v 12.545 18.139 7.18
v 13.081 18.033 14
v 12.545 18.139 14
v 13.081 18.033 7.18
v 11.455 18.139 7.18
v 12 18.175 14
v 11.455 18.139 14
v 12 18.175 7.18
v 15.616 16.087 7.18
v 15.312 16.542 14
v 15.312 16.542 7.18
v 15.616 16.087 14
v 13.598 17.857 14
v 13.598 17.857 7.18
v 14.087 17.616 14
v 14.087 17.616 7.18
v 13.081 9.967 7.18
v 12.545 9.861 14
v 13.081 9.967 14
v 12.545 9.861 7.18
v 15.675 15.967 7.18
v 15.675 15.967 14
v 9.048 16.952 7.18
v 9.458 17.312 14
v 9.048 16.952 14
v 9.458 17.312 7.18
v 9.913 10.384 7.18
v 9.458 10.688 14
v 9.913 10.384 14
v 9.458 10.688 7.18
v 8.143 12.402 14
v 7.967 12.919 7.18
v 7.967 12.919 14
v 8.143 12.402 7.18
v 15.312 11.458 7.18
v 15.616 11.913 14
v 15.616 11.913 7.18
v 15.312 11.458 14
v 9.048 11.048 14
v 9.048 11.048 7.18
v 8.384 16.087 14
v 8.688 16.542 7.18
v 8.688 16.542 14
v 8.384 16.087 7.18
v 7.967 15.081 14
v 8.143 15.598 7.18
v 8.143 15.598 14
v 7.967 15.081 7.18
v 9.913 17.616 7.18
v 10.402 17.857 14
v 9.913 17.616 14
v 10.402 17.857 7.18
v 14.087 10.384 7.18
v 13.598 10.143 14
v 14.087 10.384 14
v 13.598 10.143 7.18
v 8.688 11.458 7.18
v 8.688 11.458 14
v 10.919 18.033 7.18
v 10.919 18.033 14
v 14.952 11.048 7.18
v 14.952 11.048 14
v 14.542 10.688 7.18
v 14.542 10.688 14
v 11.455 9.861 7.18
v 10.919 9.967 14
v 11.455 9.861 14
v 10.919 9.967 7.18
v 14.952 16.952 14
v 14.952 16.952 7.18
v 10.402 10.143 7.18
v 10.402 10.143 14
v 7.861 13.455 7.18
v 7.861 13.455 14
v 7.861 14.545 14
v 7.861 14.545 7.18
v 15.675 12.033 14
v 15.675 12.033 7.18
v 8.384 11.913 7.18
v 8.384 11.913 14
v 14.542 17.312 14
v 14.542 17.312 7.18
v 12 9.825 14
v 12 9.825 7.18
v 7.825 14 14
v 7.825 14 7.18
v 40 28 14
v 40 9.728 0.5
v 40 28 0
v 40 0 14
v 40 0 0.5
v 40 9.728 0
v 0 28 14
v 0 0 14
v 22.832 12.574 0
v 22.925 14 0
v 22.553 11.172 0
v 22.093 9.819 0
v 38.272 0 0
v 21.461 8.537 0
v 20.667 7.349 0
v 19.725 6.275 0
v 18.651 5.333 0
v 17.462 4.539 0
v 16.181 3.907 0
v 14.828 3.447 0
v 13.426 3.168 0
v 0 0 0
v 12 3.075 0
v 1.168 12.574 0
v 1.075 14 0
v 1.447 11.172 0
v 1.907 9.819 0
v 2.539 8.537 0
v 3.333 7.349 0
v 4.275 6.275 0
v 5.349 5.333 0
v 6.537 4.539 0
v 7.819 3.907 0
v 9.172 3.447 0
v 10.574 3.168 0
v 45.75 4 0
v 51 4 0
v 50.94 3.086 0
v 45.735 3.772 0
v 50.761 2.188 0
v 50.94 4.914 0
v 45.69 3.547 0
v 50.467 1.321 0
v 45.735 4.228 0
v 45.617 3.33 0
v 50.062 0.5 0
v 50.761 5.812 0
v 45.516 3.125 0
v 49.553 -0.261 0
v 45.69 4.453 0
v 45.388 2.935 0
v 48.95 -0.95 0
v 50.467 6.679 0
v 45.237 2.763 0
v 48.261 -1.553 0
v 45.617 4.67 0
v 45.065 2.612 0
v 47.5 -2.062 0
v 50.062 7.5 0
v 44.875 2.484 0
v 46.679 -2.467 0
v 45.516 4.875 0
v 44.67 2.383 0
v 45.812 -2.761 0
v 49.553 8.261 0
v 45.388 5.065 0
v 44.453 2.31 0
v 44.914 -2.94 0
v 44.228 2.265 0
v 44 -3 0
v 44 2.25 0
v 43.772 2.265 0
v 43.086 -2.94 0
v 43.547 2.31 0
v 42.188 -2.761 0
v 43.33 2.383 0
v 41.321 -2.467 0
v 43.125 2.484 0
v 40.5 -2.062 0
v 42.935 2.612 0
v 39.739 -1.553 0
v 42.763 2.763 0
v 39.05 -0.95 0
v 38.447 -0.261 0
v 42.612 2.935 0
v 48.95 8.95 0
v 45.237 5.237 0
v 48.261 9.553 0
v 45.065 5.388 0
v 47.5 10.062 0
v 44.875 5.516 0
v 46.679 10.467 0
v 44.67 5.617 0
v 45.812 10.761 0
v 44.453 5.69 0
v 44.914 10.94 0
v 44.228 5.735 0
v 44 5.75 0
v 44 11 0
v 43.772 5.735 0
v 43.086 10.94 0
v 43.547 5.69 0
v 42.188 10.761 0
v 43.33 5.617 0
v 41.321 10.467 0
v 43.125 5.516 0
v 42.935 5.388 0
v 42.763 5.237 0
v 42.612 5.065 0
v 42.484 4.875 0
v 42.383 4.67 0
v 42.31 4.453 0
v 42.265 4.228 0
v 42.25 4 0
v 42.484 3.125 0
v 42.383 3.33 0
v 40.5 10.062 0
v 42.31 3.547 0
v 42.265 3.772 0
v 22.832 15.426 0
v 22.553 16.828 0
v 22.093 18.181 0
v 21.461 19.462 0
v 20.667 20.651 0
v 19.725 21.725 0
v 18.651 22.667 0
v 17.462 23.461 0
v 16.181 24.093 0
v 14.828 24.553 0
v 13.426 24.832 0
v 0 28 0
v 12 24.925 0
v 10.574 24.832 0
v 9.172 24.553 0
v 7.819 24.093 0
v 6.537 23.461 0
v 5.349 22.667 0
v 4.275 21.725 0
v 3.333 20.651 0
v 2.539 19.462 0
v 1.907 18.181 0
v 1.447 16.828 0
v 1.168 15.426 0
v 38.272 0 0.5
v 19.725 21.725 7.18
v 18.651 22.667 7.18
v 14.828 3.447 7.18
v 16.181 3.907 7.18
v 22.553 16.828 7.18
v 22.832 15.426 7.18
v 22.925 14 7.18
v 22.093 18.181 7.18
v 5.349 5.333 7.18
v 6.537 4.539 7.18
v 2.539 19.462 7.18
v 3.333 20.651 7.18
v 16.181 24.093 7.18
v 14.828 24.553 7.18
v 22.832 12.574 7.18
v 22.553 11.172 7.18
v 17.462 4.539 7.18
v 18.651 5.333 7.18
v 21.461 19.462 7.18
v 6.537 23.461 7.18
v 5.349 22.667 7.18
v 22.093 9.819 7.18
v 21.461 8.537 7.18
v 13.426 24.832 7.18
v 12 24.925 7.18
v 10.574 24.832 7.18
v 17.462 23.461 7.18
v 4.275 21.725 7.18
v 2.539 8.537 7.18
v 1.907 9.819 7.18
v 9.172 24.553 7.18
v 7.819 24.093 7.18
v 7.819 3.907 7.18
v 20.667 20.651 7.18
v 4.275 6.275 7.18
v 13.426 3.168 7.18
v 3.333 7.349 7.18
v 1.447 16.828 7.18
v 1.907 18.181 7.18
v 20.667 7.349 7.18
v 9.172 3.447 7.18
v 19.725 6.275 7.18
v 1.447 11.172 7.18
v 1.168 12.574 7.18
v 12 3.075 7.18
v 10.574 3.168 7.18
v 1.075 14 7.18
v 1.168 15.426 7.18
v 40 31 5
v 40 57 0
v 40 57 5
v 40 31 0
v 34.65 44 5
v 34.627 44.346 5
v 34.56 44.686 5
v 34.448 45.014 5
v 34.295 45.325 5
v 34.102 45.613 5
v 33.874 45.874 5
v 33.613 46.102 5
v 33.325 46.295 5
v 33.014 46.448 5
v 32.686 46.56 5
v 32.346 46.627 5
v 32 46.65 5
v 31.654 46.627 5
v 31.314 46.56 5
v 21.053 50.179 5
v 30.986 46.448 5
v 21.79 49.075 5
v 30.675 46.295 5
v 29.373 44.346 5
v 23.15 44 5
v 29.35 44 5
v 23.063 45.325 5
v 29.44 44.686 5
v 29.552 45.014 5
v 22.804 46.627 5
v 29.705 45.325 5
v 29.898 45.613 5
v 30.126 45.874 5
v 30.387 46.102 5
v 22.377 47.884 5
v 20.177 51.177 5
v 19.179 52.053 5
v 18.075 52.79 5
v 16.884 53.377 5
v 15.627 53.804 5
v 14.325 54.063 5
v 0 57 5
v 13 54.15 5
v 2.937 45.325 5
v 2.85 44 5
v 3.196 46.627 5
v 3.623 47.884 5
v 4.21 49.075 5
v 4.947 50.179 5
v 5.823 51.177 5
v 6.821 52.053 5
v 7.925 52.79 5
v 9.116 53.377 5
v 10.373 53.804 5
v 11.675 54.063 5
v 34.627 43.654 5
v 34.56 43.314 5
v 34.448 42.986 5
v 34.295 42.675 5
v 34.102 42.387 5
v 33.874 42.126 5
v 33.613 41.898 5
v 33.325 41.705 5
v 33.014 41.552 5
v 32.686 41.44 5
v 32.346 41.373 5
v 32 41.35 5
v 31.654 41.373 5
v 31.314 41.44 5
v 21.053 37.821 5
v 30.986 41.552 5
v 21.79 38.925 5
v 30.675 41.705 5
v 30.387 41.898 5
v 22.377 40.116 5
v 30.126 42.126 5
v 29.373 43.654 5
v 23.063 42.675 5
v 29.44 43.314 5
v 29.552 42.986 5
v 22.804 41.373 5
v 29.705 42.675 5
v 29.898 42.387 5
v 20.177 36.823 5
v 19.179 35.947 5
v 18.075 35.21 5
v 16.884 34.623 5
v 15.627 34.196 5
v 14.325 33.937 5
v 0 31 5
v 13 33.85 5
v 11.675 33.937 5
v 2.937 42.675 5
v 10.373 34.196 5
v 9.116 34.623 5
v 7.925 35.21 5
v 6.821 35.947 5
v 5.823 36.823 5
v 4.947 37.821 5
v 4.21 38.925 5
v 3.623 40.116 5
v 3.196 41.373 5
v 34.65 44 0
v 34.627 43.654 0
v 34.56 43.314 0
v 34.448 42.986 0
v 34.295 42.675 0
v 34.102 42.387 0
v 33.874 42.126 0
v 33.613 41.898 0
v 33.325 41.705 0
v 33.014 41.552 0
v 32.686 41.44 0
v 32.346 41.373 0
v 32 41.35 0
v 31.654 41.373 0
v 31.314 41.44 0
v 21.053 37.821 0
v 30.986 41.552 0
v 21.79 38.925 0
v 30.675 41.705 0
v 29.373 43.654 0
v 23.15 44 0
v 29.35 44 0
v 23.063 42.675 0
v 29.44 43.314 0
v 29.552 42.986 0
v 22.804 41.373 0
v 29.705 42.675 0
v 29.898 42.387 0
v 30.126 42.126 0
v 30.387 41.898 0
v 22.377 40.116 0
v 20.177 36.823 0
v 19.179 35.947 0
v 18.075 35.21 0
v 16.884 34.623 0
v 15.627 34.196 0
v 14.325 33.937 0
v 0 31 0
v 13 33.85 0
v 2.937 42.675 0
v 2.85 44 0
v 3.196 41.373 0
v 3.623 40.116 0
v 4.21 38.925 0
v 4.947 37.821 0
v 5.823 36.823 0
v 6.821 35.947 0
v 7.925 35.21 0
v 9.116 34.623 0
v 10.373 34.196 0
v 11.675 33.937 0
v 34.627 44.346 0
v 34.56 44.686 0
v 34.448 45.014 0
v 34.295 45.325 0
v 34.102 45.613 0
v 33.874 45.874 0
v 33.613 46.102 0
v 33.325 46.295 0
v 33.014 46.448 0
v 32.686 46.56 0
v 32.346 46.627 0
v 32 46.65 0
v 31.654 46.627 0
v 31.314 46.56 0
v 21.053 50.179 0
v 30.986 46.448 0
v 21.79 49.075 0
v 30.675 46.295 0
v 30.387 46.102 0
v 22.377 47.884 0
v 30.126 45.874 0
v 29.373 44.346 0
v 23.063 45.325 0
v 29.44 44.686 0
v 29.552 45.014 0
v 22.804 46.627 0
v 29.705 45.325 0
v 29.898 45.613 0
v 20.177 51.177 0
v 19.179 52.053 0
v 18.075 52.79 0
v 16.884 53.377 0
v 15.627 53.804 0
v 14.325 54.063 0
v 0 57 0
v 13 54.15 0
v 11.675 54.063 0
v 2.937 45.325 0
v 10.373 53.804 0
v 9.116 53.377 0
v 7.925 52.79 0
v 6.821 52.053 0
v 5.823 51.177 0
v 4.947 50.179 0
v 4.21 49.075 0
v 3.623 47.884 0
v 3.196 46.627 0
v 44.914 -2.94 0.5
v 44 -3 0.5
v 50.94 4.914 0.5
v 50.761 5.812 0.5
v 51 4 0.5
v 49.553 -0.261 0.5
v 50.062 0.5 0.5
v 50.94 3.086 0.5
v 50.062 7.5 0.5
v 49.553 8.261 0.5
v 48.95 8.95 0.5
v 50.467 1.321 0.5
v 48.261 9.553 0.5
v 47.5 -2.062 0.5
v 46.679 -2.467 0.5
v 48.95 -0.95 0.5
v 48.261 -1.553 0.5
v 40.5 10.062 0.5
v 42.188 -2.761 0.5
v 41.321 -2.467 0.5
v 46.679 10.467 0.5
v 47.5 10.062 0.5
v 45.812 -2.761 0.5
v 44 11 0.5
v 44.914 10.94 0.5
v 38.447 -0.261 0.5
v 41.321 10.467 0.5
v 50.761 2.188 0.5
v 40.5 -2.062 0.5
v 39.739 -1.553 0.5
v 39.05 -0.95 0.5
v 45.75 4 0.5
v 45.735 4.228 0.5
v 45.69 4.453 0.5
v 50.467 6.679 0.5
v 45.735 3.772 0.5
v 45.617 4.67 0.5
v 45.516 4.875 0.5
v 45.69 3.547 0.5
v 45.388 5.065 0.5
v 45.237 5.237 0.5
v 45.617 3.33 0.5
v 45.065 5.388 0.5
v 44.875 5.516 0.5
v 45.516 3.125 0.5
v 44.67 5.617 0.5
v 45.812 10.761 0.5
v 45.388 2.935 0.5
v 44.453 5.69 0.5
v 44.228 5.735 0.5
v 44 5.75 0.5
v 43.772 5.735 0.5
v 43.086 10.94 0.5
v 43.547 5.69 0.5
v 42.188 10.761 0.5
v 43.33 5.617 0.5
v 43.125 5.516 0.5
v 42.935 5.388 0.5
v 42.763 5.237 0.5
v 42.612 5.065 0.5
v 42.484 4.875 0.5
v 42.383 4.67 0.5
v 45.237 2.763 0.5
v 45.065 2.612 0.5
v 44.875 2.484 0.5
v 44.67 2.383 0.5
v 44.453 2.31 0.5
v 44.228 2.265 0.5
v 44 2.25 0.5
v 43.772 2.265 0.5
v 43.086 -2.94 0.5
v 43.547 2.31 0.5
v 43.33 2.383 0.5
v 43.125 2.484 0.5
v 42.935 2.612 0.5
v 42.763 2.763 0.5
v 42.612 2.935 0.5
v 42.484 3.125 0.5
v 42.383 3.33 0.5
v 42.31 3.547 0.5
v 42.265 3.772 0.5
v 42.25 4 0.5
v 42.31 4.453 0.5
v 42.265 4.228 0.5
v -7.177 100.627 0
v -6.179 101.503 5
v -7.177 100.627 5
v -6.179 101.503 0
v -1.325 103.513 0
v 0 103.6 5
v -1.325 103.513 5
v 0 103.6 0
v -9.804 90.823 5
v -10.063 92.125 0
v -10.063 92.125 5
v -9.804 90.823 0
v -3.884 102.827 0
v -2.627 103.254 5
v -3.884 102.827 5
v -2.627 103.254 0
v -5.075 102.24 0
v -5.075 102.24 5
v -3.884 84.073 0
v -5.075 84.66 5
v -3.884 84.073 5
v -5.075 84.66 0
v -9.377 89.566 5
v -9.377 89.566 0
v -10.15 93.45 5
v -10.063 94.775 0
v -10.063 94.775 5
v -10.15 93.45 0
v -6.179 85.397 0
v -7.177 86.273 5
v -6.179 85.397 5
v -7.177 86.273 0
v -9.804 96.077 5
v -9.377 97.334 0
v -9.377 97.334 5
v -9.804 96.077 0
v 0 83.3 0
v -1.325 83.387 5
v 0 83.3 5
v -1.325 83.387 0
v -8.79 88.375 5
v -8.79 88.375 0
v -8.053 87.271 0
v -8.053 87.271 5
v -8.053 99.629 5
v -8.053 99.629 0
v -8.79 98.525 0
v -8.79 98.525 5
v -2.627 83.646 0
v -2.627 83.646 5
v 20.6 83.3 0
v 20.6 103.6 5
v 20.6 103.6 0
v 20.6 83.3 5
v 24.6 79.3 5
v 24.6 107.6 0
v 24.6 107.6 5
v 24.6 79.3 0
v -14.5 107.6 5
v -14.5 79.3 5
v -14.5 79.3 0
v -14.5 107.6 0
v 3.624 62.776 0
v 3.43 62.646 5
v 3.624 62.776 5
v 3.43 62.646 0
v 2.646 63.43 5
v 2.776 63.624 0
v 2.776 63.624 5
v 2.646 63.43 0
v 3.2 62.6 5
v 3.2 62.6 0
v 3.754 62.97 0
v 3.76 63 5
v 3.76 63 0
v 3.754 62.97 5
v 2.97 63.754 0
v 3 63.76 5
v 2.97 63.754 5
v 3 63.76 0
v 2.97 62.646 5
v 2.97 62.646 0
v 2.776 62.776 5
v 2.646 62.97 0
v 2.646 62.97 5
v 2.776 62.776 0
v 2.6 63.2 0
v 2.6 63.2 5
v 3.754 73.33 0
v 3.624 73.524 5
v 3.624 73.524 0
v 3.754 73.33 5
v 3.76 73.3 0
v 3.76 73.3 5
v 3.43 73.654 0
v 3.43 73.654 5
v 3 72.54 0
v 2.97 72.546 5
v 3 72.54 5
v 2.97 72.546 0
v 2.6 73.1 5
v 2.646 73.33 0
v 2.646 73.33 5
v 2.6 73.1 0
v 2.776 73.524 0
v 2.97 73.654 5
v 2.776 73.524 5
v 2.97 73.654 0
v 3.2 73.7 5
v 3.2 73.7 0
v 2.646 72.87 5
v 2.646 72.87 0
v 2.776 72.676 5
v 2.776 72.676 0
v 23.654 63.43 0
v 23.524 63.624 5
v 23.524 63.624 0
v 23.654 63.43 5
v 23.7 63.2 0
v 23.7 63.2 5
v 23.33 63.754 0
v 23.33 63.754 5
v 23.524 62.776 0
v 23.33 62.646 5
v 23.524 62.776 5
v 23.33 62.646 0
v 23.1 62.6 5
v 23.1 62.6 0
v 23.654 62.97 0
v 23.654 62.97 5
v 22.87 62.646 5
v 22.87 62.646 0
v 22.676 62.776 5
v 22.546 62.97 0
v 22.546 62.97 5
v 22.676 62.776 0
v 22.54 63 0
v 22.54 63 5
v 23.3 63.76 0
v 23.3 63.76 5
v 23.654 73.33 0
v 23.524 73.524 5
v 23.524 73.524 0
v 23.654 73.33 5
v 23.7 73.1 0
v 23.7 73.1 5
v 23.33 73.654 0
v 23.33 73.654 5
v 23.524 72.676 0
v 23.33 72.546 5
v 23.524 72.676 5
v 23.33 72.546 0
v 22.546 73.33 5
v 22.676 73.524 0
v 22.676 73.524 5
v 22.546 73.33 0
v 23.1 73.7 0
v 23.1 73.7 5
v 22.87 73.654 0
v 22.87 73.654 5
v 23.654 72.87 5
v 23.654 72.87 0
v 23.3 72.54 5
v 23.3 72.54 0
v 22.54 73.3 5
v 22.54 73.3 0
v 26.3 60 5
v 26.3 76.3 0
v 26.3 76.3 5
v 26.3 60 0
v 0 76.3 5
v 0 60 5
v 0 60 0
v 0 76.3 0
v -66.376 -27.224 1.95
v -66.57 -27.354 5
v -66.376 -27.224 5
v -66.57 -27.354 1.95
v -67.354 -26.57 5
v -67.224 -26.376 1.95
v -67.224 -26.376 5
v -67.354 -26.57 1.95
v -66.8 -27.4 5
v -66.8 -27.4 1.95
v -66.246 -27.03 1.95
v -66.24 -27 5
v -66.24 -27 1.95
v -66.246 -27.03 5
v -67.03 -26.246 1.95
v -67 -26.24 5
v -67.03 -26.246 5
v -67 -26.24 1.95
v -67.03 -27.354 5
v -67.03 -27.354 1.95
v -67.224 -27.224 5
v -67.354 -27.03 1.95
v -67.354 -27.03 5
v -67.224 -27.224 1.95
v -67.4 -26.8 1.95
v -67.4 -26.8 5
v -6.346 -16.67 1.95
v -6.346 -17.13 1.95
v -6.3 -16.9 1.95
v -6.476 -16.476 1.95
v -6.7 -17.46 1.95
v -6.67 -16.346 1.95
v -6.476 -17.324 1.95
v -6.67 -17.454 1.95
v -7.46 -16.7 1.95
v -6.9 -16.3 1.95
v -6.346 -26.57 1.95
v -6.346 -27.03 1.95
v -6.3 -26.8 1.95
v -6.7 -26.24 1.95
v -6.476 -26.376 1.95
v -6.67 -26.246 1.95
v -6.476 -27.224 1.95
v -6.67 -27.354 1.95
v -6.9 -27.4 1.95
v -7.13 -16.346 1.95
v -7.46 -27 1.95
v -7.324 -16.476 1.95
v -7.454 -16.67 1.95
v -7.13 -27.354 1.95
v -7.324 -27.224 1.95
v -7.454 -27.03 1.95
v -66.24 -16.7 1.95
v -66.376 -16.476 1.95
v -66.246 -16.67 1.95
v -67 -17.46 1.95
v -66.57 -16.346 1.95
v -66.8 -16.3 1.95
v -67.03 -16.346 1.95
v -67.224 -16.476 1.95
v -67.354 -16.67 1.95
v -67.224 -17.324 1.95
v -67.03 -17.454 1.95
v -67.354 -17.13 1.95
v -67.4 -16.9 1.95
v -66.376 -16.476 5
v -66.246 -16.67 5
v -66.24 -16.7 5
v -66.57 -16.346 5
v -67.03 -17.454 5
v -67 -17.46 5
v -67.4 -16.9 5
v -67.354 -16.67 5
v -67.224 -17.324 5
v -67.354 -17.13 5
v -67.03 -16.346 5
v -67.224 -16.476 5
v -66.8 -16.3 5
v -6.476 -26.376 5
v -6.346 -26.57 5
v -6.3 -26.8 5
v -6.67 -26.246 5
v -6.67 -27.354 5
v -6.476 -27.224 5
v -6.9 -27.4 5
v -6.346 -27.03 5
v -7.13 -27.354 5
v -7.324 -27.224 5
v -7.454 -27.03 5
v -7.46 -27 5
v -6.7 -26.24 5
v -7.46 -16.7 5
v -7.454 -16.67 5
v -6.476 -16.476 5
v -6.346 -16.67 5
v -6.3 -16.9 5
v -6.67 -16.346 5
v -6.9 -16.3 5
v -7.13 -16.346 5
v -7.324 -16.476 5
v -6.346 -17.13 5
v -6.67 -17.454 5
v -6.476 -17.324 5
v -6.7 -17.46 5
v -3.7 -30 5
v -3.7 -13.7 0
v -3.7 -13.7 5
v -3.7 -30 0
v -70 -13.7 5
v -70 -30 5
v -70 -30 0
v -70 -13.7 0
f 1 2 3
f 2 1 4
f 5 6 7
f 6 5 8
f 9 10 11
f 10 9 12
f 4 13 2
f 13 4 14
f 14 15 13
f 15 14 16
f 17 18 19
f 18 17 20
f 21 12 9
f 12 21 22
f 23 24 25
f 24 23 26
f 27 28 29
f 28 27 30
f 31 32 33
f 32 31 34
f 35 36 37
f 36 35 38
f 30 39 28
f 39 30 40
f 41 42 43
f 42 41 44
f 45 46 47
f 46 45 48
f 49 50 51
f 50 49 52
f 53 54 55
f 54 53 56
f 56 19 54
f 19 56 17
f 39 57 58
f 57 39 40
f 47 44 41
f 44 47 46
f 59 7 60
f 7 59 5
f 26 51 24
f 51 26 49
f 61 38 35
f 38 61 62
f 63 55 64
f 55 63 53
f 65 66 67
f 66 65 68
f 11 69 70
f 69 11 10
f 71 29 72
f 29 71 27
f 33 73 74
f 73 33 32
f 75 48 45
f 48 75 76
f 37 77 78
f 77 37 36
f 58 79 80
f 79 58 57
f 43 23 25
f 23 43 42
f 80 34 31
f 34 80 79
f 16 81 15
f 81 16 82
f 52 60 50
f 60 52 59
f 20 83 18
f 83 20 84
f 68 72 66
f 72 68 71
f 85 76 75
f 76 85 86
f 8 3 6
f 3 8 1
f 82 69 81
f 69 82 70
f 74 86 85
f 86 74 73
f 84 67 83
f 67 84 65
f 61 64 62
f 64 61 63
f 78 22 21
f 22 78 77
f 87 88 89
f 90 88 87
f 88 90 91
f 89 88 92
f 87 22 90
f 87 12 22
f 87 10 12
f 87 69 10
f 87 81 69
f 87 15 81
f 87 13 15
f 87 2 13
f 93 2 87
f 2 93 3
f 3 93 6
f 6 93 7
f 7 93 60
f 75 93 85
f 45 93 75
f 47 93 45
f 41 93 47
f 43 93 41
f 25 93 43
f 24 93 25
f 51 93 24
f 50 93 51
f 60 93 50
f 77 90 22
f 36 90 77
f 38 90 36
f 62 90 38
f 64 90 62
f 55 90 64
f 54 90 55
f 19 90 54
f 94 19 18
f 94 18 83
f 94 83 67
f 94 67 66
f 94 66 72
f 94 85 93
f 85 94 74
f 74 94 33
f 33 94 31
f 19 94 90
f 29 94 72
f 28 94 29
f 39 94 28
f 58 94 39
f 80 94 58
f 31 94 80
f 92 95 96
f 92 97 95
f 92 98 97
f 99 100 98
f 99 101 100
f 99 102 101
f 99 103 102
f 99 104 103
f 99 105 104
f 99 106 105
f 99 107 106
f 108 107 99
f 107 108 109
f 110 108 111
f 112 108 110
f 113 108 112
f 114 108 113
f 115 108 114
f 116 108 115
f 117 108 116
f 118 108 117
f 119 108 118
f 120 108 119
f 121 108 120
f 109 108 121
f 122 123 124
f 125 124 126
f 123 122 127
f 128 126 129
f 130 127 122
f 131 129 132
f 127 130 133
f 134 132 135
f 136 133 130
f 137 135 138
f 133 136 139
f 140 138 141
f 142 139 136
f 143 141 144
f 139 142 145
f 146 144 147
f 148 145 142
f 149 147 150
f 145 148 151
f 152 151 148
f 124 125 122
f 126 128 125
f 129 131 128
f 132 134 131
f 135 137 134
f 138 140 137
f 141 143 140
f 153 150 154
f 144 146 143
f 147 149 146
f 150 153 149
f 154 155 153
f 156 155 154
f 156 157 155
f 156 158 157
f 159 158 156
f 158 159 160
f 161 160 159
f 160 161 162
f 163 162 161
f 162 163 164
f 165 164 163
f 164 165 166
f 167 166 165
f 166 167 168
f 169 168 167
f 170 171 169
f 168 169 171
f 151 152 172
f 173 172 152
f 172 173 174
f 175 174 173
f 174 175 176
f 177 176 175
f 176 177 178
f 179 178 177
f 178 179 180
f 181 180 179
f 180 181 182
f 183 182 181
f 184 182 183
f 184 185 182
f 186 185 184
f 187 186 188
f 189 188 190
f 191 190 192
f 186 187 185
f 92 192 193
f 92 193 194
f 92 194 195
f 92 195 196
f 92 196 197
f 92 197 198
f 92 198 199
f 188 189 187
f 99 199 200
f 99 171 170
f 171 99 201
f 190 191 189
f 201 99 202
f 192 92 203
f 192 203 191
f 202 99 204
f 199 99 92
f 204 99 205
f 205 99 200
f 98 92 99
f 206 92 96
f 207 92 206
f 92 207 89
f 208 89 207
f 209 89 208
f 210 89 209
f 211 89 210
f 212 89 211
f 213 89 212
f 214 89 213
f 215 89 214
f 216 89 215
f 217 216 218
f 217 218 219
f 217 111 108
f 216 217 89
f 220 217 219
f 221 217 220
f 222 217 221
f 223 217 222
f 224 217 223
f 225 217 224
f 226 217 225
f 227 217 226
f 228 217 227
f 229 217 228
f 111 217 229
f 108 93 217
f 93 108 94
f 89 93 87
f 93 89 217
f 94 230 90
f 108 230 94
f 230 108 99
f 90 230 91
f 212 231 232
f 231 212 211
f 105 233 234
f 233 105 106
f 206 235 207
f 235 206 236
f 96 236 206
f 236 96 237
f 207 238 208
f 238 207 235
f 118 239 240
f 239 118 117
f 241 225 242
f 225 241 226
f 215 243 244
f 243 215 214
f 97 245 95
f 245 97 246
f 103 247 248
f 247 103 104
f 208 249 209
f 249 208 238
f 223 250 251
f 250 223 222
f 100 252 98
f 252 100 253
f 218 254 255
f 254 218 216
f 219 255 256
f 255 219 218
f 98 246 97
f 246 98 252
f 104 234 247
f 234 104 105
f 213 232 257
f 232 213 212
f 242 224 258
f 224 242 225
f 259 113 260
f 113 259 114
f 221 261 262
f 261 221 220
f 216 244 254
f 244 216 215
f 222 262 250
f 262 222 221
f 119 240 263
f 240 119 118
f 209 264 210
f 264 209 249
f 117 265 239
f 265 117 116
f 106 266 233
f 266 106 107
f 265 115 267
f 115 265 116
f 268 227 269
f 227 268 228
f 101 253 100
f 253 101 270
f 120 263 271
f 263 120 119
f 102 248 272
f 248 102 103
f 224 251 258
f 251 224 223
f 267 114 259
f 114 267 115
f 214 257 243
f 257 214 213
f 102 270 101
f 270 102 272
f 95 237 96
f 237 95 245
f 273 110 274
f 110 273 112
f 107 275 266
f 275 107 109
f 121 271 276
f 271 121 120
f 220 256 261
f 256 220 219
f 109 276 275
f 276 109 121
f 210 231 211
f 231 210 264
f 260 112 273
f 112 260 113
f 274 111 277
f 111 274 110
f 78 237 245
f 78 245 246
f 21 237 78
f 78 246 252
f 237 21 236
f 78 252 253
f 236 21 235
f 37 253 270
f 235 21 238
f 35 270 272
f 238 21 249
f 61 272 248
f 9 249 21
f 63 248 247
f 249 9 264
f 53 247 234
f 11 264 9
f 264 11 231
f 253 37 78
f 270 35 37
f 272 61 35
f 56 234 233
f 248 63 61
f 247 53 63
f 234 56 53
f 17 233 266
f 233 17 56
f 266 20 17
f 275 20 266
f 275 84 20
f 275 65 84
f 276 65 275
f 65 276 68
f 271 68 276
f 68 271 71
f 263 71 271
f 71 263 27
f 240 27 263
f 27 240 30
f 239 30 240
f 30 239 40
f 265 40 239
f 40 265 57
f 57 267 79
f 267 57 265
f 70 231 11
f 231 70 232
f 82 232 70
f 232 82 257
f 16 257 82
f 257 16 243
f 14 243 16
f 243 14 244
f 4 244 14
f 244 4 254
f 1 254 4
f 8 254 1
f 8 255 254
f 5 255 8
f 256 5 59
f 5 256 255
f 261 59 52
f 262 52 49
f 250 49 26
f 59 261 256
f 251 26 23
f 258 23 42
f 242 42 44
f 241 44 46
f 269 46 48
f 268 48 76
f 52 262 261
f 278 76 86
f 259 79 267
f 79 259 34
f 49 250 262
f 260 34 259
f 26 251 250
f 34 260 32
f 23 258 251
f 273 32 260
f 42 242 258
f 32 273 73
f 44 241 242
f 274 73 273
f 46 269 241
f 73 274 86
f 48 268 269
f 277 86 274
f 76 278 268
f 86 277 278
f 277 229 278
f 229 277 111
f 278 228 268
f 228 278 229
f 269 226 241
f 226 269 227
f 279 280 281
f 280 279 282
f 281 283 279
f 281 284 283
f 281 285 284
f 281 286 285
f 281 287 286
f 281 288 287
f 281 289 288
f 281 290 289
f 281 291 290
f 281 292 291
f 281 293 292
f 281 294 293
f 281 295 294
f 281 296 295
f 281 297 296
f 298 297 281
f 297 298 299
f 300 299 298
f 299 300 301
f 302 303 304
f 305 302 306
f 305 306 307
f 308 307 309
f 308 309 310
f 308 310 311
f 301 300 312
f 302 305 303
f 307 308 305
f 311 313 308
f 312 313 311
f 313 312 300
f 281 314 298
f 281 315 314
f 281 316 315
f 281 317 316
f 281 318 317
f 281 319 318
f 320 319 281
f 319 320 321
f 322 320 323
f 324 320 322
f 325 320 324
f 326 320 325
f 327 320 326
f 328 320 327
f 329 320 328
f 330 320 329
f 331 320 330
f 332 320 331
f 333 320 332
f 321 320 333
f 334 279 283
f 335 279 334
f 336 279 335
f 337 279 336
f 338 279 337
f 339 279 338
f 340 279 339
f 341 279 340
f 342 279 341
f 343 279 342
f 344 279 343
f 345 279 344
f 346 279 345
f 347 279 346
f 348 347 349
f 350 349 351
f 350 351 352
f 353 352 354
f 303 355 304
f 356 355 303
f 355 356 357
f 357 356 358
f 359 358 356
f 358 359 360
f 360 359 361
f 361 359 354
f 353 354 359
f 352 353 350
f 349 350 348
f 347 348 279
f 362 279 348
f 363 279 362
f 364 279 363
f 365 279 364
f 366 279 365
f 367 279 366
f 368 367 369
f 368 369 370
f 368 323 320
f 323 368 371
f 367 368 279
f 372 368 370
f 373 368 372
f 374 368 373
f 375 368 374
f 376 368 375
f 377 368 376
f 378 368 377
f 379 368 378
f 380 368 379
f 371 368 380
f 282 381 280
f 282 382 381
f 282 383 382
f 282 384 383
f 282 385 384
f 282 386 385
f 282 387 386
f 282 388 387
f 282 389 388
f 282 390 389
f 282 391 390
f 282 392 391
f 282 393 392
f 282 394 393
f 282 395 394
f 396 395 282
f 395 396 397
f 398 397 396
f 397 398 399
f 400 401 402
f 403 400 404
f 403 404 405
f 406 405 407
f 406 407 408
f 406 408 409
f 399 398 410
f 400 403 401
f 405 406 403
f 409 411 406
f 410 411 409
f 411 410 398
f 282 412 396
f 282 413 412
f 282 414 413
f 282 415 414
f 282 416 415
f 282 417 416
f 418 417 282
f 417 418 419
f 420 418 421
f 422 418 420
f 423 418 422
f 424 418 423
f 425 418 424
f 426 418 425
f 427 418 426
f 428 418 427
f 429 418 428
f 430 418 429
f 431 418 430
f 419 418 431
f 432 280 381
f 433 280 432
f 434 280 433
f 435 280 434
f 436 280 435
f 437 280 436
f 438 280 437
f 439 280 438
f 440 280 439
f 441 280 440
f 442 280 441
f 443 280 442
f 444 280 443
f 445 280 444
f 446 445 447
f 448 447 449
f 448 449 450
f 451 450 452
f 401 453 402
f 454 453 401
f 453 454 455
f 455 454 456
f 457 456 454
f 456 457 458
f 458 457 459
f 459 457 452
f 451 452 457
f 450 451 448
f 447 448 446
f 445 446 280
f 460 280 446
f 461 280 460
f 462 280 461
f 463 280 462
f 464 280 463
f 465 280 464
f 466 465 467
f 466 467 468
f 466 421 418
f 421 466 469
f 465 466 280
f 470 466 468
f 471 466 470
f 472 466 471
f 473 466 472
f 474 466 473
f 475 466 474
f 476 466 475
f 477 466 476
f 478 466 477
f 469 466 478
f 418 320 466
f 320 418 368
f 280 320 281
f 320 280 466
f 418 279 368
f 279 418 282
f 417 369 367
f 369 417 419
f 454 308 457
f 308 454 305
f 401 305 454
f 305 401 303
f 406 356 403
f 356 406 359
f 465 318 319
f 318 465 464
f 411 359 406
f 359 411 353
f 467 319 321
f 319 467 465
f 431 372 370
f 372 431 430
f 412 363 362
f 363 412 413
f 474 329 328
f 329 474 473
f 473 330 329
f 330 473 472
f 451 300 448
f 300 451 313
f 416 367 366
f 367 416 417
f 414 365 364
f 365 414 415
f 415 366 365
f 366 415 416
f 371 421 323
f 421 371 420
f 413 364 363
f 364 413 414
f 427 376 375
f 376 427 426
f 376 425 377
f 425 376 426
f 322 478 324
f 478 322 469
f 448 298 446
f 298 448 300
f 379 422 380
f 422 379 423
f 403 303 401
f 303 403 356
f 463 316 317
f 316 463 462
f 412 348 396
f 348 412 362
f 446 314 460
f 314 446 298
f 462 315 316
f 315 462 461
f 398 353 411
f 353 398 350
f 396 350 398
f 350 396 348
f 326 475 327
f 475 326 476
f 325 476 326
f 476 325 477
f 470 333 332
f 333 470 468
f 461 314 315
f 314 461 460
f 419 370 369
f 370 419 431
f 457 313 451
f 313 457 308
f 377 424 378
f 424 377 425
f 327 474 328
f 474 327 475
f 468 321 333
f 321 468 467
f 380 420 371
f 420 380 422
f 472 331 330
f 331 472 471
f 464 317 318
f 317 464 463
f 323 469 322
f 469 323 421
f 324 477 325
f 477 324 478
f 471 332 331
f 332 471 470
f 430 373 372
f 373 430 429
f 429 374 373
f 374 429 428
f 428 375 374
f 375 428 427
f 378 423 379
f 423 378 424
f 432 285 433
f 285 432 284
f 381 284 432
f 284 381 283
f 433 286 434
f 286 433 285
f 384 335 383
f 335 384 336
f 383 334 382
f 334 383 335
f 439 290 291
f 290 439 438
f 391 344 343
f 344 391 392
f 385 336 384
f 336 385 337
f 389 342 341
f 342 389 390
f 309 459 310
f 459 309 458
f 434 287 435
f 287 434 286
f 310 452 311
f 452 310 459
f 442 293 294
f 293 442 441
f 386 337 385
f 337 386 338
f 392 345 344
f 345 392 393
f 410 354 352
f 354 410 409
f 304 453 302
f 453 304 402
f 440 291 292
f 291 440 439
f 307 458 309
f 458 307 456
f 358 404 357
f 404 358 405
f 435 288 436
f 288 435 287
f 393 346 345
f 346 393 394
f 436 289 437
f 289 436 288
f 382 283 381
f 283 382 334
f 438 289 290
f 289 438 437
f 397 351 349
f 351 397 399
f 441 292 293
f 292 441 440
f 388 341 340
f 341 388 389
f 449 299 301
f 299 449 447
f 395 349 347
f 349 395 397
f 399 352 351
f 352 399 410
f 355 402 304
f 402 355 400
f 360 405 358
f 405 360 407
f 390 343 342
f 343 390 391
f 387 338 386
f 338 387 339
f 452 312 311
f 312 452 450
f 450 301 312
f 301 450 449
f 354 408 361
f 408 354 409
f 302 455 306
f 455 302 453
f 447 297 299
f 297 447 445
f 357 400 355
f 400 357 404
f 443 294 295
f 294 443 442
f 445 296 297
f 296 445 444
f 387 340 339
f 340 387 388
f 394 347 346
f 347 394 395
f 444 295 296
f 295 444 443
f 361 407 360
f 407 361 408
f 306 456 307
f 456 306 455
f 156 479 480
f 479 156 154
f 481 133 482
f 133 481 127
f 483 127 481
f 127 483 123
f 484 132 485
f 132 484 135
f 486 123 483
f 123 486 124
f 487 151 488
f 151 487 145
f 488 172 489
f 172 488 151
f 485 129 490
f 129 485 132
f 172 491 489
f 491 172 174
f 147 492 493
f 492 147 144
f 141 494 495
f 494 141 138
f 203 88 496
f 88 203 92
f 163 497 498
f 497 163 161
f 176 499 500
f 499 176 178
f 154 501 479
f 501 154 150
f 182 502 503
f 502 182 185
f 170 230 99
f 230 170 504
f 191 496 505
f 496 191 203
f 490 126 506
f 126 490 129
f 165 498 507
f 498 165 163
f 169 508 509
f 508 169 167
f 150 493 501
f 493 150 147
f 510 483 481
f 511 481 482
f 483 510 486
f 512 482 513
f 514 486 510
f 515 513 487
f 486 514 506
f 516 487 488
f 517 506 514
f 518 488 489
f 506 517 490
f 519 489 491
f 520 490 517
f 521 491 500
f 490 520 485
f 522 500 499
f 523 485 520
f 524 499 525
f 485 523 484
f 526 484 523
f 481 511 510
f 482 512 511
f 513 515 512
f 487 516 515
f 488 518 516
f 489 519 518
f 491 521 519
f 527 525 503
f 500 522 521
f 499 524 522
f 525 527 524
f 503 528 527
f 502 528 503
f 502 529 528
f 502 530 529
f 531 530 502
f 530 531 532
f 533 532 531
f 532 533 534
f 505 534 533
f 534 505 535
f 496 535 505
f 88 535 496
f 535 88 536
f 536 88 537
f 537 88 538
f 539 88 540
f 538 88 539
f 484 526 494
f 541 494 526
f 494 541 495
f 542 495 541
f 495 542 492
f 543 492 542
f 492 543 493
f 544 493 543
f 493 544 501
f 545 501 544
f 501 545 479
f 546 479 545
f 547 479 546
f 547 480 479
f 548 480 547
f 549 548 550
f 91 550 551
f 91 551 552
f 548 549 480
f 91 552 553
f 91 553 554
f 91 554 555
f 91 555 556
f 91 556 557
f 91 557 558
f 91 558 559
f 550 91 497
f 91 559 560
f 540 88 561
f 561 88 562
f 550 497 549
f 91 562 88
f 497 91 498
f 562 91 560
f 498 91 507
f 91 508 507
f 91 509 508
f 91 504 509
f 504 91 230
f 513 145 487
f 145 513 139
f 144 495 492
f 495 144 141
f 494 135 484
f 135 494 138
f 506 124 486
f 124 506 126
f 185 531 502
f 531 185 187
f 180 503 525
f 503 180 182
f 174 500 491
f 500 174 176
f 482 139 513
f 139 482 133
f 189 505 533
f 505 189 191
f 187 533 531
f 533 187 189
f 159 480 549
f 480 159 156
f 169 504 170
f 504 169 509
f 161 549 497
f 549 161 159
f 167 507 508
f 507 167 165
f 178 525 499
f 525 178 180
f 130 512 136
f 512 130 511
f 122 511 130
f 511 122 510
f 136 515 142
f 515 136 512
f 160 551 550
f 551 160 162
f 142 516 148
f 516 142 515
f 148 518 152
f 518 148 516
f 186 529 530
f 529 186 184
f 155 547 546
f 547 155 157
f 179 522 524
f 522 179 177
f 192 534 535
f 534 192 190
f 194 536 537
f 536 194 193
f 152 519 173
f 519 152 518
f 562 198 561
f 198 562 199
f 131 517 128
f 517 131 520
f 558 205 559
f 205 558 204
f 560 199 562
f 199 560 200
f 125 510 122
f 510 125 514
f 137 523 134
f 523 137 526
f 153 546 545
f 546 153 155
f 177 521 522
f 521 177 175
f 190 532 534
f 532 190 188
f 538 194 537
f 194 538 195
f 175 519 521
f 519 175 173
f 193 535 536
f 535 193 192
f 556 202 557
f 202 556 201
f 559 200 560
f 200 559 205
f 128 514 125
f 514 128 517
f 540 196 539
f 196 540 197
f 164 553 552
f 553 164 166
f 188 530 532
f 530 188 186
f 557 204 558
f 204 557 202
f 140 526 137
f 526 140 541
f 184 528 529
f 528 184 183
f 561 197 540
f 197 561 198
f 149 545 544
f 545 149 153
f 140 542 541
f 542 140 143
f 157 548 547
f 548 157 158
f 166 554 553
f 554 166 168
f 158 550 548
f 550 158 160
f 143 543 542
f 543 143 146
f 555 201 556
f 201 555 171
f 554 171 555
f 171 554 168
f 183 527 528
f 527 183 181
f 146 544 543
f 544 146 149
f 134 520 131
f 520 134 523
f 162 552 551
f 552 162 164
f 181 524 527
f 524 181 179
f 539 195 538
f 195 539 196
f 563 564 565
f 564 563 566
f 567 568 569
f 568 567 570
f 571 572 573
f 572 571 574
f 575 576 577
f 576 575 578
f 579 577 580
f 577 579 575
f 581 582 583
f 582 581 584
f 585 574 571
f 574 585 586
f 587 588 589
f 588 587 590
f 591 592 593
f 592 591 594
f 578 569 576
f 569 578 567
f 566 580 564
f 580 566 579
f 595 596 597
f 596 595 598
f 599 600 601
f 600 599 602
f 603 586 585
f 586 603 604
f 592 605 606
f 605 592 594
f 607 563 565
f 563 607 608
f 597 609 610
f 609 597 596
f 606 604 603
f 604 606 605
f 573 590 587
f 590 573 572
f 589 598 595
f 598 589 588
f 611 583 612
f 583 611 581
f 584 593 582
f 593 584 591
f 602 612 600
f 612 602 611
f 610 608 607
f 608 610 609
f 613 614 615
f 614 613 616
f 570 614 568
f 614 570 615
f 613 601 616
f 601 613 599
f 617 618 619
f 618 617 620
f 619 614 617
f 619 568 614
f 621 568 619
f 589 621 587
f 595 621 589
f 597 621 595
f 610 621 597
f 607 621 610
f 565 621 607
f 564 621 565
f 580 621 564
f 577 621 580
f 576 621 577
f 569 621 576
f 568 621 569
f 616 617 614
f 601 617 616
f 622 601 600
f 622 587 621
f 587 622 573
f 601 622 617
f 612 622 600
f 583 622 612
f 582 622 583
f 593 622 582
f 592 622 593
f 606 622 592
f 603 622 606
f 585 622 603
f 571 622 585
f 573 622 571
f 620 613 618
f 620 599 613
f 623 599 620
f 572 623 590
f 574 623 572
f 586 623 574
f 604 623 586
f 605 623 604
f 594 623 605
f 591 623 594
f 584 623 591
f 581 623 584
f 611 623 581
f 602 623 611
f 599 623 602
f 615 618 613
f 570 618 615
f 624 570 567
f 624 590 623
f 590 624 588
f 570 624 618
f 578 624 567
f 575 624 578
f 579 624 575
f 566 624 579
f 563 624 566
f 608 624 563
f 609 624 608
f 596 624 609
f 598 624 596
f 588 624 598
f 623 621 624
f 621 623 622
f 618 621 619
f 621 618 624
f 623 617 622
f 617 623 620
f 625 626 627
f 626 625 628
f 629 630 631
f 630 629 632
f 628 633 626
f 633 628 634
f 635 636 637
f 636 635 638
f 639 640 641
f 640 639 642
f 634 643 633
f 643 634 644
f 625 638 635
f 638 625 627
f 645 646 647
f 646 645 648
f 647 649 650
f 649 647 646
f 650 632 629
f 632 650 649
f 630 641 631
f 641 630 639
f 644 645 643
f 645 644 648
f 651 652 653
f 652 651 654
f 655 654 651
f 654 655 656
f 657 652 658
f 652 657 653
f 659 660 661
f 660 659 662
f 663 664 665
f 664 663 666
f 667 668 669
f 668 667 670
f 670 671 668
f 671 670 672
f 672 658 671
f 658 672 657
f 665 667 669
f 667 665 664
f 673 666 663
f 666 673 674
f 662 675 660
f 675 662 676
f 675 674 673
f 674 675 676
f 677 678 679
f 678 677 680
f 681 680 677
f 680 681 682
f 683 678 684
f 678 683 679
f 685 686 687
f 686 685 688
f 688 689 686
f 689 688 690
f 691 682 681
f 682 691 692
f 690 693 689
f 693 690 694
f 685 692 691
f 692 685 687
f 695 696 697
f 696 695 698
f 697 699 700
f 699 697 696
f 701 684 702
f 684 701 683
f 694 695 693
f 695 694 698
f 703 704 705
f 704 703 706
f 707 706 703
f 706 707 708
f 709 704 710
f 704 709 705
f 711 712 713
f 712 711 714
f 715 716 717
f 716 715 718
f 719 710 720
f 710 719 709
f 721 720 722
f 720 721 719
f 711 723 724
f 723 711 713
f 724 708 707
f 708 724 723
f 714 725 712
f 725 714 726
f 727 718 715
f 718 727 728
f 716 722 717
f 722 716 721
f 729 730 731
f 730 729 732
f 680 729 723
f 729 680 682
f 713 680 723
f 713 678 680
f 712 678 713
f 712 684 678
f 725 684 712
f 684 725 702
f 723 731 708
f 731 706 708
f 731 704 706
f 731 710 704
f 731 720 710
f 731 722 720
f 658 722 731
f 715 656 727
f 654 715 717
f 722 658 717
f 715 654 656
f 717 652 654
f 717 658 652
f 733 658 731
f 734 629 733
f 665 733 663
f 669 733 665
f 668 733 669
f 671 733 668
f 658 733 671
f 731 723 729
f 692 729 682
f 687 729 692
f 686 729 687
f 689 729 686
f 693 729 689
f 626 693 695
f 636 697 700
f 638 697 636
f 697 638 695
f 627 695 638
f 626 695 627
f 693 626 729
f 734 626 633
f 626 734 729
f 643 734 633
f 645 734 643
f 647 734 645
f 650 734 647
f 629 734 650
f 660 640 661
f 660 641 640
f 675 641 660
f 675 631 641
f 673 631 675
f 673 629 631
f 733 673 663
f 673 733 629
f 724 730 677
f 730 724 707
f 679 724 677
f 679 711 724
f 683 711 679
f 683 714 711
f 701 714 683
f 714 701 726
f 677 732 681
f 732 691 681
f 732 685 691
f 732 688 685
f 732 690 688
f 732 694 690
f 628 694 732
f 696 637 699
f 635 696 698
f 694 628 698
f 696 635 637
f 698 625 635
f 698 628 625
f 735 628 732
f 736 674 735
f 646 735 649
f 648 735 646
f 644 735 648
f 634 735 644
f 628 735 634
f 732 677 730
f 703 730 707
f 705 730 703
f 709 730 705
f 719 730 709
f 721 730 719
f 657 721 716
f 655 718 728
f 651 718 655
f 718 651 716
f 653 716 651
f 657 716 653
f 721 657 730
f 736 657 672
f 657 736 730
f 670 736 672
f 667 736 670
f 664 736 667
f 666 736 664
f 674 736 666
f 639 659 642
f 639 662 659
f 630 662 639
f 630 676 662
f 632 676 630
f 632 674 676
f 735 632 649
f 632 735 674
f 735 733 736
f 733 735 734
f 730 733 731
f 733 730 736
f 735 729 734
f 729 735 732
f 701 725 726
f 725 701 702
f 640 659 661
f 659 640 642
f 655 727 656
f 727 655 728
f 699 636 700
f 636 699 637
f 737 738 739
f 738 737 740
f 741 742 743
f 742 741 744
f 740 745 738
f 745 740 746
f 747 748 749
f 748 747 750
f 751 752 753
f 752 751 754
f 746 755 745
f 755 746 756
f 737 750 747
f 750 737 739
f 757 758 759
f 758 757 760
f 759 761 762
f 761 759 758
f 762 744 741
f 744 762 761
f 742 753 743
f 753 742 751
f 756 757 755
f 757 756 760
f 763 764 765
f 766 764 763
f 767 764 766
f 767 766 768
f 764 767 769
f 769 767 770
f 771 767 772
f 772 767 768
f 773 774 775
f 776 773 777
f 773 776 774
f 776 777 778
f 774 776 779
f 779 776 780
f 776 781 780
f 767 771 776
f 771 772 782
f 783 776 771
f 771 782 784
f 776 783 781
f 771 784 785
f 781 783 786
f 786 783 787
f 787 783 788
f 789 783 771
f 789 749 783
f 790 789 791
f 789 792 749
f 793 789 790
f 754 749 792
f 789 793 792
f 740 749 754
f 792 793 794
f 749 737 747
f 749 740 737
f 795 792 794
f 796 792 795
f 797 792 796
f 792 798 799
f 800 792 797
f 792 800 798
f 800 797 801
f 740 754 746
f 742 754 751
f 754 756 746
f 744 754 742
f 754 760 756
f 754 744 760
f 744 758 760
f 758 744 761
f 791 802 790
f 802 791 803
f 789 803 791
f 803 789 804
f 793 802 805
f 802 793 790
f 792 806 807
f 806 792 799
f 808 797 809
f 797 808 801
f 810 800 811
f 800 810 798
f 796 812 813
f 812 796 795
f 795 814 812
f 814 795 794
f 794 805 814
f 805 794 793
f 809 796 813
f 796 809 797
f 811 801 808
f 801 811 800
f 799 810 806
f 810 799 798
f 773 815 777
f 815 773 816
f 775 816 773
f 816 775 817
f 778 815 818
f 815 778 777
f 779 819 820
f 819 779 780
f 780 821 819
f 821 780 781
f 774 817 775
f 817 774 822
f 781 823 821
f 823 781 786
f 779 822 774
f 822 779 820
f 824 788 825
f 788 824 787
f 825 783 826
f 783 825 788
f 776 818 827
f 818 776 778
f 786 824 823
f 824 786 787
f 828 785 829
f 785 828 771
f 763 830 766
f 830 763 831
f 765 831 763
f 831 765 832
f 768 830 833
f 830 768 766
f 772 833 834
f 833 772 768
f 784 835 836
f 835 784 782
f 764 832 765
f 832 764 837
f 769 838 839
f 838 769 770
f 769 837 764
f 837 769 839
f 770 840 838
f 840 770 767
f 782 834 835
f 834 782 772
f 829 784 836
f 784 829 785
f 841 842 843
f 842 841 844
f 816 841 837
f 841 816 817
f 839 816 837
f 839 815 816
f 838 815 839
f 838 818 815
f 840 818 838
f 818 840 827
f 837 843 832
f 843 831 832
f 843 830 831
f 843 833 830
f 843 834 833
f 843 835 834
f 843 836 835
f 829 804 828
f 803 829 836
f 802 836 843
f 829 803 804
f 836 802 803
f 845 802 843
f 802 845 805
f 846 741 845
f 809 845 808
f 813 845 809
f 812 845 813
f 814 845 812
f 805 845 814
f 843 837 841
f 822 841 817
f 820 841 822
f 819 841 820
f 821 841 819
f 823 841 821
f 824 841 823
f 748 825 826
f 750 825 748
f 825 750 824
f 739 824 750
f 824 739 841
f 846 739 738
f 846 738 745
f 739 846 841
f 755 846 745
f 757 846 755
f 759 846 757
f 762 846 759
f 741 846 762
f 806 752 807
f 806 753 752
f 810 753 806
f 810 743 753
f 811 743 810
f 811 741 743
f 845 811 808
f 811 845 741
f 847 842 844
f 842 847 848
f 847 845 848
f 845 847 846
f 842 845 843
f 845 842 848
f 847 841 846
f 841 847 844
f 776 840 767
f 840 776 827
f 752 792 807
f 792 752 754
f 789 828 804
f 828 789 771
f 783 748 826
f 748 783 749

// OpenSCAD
// Gen-DA — fit coupon: O20/O5 THROUGH pockets at carrier thickness (test on a steel offcut), 608 seat,
// D-flat bore, gap shim, and one bobbin-bay slice (bobbin footprint + bay_clear) to test former fit.
include <parameters.scad>;
$fn = 48;
// D-flat keyed bore: flat faces +X (angle 0 = magnet pocket 0 = index notch)
module dflat_bore(h) {
    intersection() {
        cylinder(d=shaft_bore, h=h);
        translate([-shaft_bore, -shaft_bore, 0]) cube([shaft_bore + dflat_x, 2*shaft_bore, h]);
    }
}
module sector_2d(r_in, r_out, ang) {
    polygon([
        for (a = [-ang/2 : ang/24 : ang/2]) [r_in*cos(a), r_in*sin(a)],
        for (a = [ang/2 : -ang/24 : -ang/2]) [r_out*cos(a), r_out*sin(a)]
    ]);
}
module footprint_2d() { offset(r=wall) sector_2d(coil_id_r, coil_od_r, span_deg); }
module hub_2d()       { offset(delta=-coil_core_inset) sector_2d(coil_id_r, coil_od_r, span_deg); }

block_w = 40; block_d = 28; block_h = 14;
difference() {
    cube([block_w, block_d, block_h]);
    translate([12, block_d/2, -0.02]) cylinder(d=bearing_d, h=bearing_h);
    translate([12, block_d/2, -0.1]) dflat_bore(block_h + 1);
}
translate([0, block_d + 3, 0]) difference() {
    cube([40, 26, carrier_thick]);
    translate([13, 13, -0.1]) cylinder(d=large_pocket_d, h=carrier_thick + 0.2);
    translate([32, 13, -0.1]) cylinder(d=small_pocket_d, h=carrier_thick + 0.2);
}
translate([block_w + 4, 4, 0])
    difference() {
        cylinder(d=spacer_pad_od, h=gap_spacer_h);
        translate([0, 0, -0.1]) cylinder(d=spacer_pad_id, h=gap_spacer_h + 0.2);
    }
// KEYHOLE pole pocket test (2026-10-18): O20 disc pocket + N42 20x10x5 block pocket merged (hull), as on the arcs.
// Drop a disc and a block in: they must push each other onto the two far walls and sit flat. Block pocket has corner reliefs.
translate([0, block_d + 3 + 26 + 3 + block_radial + block_pocket_clear + 6 + 3 + max(block_tangential, large_pocket_d) / 2 + 4, 0]) difference() {
    translate([-14.5, -(max(block_tangential, large_pocket_d) / 2 + 4), 0]) cube([14.5 + abs(block_R_list[0] - R_large) + block_radial / 2 + 4, max(block_tangential, large_pocket_d) + 8, carrier_thick]);
    translate([0, 0, -0.1]) {
        translate([disc_pocket_shift * sign(block_R_list[0] - R_large), 0, 0]) cylinder(d=large_pocket_d, h=carrier_thick + 0.2);
        translate([disc_pocket_shift * sign(block_R_list[0] - R_large), -(block_tangential + block_pocket_clear)/2, 0])
            cube([abs(block_R_list[0] - R_large) - abs(block_pocket_shift) + (block_radial + block_pocket_clear)/2 - disc_pocket_shift * sign(block_R_list[0] - R_large), block_tangential + block_pocket_clear, carrier_thick + 0.2]);
    }
}
// N42 20x10x5 BLOCK through-pocket test (block + block_pocket_clear, 1.2 mm corner reliefs), 2026-10-16
translate([0, block_d + 3 + 26 + 3, 0]) difference() {
    cube([block_tangential + block_pocket_clear + 6, block_radial + block_pocket_clear + 6, carrier_thick]);
    translate([3, 3, -0.1]) cube([block_tangential + block_pocket_clear, block_radial + block_pocket_clear, carrier_thick + 0.2]);
    for (x = [3.2, 3 + block_tangential + block_pocket_clear - 0.2], y = [3.2, 3 + block_radial + block_pocket_clear - 0.2])
        translate([x, y, -0.1]) cylinder(d=1.2, h=carrier_thick + 0.2, $fn=16);
}
// N52 60x10x3 BAR blind-pocket test (2026-10-21): bar + 0.3 mm, depth block2_pocket_depth: the bar face must sit flush with the top.
translate([-70, -30, 0]) difference() {
    cube([block2_tangential + block2_pocket_clear + 6, block2_radial + block2_pocket_clear + 6, carrier_thick]);
    translate([3, 3, carrier_thick - block2_pocket_depth]) cube([block2_tangential + block2_pocket_clear, block2_radial + block2_pocket_clear, carrier_thick]);
    for (x = [3.2, 3 + block2_tangential + block2_pocket_clear - 0.2], y = [3.2, 3 + block2_radial + block2_pocket_clear - 0.2])
        translate([x, y, carrier_thick - block2_pocket_depth]) cylinder(d=1.2, h=carrier_thick, $fn=16);
}
